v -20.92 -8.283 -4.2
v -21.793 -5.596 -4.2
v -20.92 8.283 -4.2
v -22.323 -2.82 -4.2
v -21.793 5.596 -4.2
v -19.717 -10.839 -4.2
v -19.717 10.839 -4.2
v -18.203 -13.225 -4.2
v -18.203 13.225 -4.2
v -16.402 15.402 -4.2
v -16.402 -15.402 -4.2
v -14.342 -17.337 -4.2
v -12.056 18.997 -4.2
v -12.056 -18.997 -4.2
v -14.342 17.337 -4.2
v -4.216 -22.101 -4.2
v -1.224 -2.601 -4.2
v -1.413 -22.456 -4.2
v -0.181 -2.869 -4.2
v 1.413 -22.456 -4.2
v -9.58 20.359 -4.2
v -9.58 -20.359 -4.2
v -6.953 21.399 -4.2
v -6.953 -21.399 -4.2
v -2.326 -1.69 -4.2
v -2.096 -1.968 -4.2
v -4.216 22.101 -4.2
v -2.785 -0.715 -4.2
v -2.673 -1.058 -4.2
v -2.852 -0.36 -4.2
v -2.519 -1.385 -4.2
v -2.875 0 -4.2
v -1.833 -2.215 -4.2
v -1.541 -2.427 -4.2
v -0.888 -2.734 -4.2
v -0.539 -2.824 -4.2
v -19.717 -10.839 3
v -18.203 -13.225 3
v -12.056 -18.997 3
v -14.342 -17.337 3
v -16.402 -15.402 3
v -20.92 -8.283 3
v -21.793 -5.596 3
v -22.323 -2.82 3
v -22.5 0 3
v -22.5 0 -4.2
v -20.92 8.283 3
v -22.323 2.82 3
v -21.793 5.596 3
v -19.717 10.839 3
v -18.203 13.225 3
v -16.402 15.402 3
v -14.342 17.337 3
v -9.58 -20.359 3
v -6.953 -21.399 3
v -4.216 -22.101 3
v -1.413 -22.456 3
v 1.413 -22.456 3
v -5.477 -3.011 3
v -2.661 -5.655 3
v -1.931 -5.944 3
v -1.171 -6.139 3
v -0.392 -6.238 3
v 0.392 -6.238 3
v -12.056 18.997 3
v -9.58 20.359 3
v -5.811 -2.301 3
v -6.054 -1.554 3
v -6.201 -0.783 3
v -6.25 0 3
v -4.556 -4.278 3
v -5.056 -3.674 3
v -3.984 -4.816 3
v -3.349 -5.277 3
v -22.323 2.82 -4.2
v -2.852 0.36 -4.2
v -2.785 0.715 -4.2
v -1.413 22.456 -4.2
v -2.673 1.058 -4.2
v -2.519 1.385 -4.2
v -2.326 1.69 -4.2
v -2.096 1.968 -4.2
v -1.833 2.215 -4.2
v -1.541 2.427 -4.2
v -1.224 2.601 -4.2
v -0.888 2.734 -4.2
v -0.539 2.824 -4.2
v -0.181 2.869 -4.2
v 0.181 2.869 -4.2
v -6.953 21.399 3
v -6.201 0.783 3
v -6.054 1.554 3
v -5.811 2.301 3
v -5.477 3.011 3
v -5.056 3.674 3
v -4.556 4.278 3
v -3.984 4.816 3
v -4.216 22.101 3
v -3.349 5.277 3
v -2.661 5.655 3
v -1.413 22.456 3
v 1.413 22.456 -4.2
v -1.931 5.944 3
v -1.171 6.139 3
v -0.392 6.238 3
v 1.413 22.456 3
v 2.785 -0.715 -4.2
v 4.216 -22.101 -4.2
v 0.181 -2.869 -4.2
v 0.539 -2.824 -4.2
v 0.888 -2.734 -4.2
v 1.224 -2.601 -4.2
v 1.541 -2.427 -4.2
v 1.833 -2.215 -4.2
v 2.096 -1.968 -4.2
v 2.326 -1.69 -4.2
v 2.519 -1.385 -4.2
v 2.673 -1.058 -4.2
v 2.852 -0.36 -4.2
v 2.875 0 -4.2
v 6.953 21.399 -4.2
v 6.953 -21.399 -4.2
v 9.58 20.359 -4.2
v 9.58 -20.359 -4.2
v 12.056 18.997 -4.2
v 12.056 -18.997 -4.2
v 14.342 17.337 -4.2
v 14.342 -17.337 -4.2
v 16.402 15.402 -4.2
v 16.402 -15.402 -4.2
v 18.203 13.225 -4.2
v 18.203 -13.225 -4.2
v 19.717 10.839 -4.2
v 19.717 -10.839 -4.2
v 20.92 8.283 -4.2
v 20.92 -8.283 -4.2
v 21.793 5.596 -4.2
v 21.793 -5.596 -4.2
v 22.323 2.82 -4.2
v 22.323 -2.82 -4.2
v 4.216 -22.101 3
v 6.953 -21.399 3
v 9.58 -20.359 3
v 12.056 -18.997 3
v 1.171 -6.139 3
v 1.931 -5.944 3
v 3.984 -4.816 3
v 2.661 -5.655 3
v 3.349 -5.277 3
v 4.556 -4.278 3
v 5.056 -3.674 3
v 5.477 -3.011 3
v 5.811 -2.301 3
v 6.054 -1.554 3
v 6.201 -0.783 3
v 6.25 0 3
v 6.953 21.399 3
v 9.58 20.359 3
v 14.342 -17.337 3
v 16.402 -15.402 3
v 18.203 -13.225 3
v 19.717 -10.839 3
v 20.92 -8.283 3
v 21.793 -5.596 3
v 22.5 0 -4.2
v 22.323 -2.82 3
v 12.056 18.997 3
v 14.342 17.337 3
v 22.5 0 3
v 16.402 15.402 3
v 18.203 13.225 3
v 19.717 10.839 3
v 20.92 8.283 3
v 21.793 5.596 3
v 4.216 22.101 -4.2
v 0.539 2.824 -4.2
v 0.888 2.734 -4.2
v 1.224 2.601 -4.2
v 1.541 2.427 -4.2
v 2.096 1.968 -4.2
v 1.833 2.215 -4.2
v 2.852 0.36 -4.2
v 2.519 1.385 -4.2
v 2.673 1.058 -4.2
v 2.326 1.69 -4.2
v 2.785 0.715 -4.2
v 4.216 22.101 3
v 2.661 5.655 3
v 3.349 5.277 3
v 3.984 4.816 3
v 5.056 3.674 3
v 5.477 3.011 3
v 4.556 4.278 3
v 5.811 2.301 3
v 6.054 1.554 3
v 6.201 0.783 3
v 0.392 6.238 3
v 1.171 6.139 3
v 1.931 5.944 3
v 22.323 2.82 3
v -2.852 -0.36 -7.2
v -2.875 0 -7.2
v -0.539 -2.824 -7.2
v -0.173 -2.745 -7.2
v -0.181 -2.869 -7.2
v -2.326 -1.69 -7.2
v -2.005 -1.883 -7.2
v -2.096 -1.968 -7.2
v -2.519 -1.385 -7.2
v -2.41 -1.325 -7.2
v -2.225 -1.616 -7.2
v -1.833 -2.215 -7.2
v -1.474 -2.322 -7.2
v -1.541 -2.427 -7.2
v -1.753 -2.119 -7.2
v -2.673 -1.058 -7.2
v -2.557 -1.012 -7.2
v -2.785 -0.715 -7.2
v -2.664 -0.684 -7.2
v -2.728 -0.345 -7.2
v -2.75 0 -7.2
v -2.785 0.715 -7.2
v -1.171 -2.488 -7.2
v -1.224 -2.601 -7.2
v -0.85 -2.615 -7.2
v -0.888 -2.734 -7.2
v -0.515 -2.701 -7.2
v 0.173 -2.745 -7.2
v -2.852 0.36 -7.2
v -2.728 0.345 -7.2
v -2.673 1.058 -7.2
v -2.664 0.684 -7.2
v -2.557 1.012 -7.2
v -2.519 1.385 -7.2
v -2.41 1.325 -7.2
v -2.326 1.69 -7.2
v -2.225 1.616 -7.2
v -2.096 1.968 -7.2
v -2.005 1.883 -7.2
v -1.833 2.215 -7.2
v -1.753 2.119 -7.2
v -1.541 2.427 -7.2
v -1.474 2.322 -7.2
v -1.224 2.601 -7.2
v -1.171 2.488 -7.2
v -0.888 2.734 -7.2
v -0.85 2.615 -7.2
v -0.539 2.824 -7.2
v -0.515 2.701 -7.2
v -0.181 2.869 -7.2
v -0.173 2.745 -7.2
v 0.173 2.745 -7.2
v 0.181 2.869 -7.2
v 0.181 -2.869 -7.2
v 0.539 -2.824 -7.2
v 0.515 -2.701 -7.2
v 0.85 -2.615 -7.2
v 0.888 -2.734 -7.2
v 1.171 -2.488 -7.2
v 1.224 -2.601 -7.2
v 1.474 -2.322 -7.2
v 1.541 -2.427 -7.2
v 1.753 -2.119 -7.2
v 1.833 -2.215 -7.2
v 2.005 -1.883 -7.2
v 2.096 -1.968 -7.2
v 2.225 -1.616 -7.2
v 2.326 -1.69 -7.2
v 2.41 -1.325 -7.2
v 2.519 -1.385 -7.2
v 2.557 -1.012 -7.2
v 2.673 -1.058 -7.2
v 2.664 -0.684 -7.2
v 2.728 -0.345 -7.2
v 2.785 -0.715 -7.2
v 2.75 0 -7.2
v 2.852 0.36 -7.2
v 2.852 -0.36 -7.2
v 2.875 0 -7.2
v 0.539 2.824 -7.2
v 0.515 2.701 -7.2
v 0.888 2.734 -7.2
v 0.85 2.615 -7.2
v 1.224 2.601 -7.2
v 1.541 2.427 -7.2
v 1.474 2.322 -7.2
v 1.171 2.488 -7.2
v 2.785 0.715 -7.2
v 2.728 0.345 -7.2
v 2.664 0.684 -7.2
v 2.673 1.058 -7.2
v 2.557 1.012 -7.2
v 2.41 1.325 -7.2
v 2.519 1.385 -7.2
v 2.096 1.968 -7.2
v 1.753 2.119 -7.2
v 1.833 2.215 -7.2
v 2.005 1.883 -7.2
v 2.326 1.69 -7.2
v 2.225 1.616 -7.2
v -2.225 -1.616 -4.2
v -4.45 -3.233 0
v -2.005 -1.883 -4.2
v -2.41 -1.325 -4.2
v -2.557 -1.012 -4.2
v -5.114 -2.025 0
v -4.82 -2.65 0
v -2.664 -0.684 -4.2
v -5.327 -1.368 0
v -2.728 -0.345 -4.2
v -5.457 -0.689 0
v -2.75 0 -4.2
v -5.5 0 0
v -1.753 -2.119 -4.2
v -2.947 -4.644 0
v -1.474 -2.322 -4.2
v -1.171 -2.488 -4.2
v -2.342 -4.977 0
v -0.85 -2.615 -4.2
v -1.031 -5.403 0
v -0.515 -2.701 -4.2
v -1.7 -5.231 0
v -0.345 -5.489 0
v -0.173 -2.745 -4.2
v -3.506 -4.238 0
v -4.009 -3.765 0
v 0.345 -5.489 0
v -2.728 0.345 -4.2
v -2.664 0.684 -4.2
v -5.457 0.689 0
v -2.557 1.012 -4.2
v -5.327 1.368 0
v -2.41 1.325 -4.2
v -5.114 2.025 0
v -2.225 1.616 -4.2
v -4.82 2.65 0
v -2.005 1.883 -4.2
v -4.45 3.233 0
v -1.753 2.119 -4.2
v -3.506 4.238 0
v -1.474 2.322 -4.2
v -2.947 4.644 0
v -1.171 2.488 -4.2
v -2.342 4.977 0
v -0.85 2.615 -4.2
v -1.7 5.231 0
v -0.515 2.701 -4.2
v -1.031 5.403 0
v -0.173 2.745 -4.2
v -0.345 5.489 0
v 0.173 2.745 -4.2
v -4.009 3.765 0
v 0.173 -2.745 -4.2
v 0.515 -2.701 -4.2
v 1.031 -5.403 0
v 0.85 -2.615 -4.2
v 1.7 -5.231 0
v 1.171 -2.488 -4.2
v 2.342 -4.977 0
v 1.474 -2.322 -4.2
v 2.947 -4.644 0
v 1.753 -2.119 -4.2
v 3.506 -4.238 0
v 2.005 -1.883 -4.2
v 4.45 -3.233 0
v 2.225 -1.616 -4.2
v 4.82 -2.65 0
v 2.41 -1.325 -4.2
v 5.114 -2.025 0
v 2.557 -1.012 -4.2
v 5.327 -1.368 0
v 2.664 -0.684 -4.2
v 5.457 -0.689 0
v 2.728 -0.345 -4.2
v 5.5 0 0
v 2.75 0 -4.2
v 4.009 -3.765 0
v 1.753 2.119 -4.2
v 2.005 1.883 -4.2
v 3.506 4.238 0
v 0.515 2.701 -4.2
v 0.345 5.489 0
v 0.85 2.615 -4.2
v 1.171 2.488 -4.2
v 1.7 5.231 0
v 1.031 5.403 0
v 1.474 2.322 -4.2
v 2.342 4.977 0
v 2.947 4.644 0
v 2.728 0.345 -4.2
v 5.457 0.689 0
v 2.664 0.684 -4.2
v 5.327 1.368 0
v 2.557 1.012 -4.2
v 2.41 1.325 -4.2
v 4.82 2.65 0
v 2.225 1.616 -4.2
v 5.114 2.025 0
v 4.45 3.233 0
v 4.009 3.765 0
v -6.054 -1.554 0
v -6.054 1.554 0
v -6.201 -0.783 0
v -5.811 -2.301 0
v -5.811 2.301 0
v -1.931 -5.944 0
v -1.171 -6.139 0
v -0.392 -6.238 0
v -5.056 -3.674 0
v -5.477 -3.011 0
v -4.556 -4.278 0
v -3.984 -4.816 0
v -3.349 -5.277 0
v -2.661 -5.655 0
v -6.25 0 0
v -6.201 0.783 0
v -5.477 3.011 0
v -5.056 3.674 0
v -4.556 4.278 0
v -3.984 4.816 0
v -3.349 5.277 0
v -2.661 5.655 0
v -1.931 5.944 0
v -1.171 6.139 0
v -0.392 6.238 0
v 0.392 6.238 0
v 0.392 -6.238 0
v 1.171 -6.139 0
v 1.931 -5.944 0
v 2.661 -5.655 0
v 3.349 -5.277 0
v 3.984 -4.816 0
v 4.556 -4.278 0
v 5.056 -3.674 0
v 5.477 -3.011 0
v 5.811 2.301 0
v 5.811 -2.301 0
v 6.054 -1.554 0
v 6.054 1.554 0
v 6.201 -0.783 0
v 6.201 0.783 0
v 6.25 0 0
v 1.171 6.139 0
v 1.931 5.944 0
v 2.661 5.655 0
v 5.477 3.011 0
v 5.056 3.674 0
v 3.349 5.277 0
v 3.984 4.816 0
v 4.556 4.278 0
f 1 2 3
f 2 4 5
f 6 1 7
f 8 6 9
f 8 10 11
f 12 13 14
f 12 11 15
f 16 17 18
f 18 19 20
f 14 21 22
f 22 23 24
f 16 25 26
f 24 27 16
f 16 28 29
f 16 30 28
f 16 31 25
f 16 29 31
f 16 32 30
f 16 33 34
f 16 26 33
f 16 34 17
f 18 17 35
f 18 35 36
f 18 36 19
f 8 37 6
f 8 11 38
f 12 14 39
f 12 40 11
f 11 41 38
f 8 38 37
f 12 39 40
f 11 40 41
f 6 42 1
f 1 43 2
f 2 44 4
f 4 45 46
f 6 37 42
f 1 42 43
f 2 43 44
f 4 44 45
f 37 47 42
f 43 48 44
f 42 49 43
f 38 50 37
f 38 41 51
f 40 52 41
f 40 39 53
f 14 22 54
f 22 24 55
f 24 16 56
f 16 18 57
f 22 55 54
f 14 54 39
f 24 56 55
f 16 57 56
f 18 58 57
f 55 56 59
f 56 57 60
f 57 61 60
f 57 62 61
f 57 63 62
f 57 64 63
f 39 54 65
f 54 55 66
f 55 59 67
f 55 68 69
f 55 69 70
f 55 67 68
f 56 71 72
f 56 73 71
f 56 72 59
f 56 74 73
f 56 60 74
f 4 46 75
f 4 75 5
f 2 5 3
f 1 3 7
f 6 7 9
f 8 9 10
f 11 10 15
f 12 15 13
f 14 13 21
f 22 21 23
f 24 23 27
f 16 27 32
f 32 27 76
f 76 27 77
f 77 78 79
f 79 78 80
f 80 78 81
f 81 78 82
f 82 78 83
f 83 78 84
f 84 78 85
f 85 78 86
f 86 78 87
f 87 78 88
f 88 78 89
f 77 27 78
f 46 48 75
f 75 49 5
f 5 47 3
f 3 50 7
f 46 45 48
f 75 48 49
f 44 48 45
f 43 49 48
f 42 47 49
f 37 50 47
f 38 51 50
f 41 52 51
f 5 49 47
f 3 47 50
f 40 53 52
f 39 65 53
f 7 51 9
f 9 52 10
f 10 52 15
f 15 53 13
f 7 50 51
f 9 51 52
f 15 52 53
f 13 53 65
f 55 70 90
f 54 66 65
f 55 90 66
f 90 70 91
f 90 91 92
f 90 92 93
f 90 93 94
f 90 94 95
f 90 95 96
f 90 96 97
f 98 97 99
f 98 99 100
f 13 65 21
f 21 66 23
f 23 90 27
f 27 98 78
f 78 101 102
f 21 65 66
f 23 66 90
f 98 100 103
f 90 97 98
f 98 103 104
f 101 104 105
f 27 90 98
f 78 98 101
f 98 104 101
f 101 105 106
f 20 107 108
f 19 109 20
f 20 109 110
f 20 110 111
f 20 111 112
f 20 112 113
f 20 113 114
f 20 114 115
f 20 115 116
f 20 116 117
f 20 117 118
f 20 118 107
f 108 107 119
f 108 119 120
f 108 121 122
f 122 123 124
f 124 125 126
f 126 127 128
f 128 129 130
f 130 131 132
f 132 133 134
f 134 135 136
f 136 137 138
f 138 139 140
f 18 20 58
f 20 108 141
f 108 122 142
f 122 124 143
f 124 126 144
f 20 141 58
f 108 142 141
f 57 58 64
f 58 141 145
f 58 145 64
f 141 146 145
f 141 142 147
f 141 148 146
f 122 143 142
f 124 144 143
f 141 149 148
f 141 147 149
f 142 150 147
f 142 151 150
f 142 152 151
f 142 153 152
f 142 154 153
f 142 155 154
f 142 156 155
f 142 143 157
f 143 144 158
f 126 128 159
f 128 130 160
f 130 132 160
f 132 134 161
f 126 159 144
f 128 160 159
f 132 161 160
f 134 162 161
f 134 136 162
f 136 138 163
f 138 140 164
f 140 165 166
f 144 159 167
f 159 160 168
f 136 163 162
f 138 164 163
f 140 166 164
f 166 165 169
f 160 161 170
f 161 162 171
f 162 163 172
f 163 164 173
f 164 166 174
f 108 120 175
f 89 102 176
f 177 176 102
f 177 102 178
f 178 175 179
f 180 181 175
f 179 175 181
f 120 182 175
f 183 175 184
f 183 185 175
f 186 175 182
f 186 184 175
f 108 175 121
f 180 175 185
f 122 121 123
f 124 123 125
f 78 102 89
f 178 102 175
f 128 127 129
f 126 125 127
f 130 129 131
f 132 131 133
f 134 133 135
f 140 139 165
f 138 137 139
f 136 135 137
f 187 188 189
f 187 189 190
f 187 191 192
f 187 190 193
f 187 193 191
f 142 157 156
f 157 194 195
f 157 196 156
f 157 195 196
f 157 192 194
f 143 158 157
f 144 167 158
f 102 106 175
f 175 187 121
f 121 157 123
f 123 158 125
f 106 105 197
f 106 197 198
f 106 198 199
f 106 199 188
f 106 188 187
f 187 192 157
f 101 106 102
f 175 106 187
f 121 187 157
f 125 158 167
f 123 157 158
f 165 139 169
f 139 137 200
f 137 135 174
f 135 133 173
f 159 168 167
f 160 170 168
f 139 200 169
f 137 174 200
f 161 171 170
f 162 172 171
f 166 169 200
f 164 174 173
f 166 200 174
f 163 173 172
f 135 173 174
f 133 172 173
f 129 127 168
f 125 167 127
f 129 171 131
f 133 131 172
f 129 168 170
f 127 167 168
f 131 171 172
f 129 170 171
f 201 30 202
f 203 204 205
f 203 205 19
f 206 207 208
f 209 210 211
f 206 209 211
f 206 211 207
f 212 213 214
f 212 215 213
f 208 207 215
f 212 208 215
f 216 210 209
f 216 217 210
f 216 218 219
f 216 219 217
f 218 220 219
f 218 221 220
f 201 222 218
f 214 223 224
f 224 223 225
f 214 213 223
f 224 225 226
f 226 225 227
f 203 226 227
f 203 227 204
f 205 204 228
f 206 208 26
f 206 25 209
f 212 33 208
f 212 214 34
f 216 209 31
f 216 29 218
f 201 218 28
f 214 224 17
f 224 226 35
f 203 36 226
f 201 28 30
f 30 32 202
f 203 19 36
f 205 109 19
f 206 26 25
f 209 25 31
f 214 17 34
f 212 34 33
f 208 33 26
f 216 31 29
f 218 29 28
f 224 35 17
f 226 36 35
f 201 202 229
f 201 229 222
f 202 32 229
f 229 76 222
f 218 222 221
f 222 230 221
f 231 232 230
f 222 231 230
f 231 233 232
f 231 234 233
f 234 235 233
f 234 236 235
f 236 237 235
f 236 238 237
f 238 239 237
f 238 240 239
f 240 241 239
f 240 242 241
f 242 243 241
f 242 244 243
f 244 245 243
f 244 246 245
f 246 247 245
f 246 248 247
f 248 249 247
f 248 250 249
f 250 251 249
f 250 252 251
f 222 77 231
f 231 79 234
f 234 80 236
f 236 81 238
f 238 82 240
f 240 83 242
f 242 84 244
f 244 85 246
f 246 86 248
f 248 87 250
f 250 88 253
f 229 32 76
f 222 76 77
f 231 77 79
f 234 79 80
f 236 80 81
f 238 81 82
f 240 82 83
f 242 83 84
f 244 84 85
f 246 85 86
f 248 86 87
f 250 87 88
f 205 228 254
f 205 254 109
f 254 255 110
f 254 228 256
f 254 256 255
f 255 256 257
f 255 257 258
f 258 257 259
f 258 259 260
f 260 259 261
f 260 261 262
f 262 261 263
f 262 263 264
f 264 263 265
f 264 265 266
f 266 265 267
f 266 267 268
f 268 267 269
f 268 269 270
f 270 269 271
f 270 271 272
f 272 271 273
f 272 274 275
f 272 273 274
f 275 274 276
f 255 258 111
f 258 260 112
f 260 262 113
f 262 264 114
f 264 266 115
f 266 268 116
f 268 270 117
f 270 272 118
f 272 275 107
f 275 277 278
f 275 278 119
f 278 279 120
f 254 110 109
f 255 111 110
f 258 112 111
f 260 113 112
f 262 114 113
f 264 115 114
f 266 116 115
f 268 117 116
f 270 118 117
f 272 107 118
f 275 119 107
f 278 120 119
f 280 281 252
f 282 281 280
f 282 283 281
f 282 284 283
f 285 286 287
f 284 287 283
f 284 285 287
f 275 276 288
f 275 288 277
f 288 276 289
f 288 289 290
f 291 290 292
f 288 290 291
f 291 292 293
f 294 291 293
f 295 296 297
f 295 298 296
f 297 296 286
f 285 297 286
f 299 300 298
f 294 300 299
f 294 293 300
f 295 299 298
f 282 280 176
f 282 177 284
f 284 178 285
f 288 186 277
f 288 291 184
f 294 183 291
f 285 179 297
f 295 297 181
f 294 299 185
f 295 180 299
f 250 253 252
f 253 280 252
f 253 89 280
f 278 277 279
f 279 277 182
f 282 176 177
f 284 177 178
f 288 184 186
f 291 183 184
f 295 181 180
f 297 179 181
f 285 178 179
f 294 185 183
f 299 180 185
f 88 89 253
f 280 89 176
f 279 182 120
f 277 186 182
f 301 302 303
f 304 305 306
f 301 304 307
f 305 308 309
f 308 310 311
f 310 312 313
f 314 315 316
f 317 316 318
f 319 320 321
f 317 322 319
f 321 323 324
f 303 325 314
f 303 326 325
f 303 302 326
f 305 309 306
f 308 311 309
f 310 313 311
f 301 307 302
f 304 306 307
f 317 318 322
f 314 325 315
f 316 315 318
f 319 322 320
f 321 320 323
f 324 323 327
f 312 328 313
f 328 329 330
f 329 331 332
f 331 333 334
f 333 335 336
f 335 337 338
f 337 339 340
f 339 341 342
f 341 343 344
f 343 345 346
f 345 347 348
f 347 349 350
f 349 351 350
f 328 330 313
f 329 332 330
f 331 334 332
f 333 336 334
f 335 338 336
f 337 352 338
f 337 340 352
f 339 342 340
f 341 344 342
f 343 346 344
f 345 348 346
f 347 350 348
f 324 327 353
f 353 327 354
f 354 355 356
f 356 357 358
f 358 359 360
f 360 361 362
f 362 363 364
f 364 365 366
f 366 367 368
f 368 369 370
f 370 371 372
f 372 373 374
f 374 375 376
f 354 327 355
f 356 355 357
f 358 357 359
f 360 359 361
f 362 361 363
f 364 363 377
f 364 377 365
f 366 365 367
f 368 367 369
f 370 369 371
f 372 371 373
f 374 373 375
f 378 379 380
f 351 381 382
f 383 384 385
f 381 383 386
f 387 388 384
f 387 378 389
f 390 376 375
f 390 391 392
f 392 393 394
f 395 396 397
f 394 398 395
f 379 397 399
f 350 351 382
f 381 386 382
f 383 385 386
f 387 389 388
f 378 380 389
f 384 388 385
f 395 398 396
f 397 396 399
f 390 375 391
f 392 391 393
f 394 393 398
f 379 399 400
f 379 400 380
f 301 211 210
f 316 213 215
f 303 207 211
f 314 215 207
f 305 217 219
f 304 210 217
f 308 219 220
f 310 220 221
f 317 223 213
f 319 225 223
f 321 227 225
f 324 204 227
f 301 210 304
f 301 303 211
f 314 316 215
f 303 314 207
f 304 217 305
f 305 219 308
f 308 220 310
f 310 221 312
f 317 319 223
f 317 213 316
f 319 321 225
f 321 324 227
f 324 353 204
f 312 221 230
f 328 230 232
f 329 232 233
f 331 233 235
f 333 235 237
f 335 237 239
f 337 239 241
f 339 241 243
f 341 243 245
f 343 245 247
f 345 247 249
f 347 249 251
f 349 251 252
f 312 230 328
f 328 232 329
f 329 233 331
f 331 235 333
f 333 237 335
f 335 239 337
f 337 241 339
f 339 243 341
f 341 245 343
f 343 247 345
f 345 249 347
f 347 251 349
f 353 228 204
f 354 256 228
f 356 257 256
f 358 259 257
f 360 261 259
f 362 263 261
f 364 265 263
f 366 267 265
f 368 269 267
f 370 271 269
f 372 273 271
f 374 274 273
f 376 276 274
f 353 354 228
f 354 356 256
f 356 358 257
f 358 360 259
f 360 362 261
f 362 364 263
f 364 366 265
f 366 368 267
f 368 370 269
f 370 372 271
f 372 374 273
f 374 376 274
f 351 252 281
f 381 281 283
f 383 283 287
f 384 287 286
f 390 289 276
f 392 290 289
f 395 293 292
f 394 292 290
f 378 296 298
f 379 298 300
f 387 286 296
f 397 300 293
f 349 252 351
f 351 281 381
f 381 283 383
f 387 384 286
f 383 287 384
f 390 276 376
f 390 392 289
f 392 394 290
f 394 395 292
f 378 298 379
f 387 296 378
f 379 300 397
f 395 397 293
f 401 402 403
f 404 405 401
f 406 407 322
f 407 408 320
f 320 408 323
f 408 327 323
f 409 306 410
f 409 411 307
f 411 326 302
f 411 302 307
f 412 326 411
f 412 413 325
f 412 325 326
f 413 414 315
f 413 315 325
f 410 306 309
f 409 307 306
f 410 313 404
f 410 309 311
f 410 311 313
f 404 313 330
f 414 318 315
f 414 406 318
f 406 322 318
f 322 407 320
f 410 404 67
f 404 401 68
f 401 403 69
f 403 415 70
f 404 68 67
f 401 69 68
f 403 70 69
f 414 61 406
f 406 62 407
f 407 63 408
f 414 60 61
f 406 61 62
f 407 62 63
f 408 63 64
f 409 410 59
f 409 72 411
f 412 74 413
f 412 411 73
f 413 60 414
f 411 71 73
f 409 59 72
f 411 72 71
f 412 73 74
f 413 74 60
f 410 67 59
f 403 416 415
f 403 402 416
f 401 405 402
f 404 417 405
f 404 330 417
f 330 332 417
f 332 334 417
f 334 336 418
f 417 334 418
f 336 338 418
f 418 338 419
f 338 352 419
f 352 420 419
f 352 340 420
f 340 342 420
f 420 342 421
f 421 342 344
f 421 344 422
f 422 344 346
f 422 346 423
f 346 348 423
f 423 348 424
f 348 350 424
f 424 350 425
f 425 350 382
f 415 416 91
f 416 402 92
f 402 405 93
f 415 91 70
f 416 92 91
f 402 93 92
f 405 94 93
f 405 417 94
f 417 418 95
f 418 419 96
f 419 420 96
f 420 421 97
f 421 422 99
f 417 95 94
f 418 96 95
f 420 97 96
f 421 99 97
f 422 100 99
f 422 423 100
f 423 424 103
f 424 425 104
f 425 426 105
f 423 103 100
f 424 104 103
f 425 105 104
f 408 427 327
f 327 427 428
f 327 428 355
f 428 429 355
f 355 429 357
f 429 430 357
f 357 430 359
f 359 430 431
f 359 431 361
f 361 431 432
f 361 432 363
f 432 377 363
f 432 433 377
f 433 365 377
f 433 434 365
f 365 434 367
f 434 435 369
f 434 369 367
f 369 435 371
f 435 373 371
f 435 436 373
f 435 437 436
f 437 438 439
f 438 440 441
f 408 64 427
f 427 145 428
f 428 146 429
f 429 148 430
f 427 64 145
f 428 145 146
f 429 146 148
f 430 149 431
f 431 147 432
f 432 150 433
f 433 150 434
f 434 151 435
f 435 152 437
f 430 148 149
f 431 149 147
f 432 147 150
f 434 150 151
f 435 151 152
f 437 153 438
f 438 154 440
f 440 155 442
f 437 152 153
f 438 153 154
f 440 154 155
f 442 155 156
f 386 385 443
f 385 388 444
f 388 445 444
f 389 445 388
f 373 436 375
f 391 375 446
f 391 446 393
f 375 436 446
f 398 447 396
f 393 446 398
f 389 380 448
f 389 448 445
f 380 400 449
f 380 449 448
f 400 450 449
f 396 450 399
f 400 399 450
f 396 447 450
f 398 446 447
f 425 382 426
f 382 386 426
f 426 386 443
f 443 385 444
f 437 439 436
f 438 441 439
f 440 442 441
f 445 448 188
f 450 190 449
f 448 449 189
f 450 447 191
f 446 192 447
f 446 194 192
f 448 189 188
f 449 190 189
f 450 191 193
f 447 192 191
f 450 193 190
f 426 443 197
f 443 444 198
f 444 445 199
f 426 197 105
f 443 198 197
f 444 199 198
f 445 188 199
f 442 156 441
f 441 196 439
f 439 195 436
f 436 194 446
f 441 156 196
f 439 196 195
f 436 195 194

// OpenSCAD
$fn = 50;

difference() {
	union() {
		translate(v = [0, 0, -4.2]) {
			cylinder(h = 7.2, r = 22.5);
		}
		#translate(v = [0, 0, -7.2]) {
			cylinder(h = 7.2, r = 2.875);
		}
	}
	union() {
		translate(v = [0, 0, 0]) {
			rotate(a = [0, 0, 0]) {
				difference() {
					union() {
						translate(v = [0, 0, -7.2]) {
							cylinder(h = 7.2, r = 2.25);
						}
						translate(v = [0, 0, -4.2]) {
							cylinder(h = 4.2, r1 = 2.75, r2 = 5.5);
						}
						translate(v = [0, 0, -7.2]) {
							cylinder(h = 7.2, r = 2.75);
						}
						translate(v = [0, 0, -7.2]) {
							cylinder(h = 7.2, r = 2.25);
						}
					}
					union();
				}
			}
		}
		#cylinder(h = 3, r = 6.25);
	}
}
